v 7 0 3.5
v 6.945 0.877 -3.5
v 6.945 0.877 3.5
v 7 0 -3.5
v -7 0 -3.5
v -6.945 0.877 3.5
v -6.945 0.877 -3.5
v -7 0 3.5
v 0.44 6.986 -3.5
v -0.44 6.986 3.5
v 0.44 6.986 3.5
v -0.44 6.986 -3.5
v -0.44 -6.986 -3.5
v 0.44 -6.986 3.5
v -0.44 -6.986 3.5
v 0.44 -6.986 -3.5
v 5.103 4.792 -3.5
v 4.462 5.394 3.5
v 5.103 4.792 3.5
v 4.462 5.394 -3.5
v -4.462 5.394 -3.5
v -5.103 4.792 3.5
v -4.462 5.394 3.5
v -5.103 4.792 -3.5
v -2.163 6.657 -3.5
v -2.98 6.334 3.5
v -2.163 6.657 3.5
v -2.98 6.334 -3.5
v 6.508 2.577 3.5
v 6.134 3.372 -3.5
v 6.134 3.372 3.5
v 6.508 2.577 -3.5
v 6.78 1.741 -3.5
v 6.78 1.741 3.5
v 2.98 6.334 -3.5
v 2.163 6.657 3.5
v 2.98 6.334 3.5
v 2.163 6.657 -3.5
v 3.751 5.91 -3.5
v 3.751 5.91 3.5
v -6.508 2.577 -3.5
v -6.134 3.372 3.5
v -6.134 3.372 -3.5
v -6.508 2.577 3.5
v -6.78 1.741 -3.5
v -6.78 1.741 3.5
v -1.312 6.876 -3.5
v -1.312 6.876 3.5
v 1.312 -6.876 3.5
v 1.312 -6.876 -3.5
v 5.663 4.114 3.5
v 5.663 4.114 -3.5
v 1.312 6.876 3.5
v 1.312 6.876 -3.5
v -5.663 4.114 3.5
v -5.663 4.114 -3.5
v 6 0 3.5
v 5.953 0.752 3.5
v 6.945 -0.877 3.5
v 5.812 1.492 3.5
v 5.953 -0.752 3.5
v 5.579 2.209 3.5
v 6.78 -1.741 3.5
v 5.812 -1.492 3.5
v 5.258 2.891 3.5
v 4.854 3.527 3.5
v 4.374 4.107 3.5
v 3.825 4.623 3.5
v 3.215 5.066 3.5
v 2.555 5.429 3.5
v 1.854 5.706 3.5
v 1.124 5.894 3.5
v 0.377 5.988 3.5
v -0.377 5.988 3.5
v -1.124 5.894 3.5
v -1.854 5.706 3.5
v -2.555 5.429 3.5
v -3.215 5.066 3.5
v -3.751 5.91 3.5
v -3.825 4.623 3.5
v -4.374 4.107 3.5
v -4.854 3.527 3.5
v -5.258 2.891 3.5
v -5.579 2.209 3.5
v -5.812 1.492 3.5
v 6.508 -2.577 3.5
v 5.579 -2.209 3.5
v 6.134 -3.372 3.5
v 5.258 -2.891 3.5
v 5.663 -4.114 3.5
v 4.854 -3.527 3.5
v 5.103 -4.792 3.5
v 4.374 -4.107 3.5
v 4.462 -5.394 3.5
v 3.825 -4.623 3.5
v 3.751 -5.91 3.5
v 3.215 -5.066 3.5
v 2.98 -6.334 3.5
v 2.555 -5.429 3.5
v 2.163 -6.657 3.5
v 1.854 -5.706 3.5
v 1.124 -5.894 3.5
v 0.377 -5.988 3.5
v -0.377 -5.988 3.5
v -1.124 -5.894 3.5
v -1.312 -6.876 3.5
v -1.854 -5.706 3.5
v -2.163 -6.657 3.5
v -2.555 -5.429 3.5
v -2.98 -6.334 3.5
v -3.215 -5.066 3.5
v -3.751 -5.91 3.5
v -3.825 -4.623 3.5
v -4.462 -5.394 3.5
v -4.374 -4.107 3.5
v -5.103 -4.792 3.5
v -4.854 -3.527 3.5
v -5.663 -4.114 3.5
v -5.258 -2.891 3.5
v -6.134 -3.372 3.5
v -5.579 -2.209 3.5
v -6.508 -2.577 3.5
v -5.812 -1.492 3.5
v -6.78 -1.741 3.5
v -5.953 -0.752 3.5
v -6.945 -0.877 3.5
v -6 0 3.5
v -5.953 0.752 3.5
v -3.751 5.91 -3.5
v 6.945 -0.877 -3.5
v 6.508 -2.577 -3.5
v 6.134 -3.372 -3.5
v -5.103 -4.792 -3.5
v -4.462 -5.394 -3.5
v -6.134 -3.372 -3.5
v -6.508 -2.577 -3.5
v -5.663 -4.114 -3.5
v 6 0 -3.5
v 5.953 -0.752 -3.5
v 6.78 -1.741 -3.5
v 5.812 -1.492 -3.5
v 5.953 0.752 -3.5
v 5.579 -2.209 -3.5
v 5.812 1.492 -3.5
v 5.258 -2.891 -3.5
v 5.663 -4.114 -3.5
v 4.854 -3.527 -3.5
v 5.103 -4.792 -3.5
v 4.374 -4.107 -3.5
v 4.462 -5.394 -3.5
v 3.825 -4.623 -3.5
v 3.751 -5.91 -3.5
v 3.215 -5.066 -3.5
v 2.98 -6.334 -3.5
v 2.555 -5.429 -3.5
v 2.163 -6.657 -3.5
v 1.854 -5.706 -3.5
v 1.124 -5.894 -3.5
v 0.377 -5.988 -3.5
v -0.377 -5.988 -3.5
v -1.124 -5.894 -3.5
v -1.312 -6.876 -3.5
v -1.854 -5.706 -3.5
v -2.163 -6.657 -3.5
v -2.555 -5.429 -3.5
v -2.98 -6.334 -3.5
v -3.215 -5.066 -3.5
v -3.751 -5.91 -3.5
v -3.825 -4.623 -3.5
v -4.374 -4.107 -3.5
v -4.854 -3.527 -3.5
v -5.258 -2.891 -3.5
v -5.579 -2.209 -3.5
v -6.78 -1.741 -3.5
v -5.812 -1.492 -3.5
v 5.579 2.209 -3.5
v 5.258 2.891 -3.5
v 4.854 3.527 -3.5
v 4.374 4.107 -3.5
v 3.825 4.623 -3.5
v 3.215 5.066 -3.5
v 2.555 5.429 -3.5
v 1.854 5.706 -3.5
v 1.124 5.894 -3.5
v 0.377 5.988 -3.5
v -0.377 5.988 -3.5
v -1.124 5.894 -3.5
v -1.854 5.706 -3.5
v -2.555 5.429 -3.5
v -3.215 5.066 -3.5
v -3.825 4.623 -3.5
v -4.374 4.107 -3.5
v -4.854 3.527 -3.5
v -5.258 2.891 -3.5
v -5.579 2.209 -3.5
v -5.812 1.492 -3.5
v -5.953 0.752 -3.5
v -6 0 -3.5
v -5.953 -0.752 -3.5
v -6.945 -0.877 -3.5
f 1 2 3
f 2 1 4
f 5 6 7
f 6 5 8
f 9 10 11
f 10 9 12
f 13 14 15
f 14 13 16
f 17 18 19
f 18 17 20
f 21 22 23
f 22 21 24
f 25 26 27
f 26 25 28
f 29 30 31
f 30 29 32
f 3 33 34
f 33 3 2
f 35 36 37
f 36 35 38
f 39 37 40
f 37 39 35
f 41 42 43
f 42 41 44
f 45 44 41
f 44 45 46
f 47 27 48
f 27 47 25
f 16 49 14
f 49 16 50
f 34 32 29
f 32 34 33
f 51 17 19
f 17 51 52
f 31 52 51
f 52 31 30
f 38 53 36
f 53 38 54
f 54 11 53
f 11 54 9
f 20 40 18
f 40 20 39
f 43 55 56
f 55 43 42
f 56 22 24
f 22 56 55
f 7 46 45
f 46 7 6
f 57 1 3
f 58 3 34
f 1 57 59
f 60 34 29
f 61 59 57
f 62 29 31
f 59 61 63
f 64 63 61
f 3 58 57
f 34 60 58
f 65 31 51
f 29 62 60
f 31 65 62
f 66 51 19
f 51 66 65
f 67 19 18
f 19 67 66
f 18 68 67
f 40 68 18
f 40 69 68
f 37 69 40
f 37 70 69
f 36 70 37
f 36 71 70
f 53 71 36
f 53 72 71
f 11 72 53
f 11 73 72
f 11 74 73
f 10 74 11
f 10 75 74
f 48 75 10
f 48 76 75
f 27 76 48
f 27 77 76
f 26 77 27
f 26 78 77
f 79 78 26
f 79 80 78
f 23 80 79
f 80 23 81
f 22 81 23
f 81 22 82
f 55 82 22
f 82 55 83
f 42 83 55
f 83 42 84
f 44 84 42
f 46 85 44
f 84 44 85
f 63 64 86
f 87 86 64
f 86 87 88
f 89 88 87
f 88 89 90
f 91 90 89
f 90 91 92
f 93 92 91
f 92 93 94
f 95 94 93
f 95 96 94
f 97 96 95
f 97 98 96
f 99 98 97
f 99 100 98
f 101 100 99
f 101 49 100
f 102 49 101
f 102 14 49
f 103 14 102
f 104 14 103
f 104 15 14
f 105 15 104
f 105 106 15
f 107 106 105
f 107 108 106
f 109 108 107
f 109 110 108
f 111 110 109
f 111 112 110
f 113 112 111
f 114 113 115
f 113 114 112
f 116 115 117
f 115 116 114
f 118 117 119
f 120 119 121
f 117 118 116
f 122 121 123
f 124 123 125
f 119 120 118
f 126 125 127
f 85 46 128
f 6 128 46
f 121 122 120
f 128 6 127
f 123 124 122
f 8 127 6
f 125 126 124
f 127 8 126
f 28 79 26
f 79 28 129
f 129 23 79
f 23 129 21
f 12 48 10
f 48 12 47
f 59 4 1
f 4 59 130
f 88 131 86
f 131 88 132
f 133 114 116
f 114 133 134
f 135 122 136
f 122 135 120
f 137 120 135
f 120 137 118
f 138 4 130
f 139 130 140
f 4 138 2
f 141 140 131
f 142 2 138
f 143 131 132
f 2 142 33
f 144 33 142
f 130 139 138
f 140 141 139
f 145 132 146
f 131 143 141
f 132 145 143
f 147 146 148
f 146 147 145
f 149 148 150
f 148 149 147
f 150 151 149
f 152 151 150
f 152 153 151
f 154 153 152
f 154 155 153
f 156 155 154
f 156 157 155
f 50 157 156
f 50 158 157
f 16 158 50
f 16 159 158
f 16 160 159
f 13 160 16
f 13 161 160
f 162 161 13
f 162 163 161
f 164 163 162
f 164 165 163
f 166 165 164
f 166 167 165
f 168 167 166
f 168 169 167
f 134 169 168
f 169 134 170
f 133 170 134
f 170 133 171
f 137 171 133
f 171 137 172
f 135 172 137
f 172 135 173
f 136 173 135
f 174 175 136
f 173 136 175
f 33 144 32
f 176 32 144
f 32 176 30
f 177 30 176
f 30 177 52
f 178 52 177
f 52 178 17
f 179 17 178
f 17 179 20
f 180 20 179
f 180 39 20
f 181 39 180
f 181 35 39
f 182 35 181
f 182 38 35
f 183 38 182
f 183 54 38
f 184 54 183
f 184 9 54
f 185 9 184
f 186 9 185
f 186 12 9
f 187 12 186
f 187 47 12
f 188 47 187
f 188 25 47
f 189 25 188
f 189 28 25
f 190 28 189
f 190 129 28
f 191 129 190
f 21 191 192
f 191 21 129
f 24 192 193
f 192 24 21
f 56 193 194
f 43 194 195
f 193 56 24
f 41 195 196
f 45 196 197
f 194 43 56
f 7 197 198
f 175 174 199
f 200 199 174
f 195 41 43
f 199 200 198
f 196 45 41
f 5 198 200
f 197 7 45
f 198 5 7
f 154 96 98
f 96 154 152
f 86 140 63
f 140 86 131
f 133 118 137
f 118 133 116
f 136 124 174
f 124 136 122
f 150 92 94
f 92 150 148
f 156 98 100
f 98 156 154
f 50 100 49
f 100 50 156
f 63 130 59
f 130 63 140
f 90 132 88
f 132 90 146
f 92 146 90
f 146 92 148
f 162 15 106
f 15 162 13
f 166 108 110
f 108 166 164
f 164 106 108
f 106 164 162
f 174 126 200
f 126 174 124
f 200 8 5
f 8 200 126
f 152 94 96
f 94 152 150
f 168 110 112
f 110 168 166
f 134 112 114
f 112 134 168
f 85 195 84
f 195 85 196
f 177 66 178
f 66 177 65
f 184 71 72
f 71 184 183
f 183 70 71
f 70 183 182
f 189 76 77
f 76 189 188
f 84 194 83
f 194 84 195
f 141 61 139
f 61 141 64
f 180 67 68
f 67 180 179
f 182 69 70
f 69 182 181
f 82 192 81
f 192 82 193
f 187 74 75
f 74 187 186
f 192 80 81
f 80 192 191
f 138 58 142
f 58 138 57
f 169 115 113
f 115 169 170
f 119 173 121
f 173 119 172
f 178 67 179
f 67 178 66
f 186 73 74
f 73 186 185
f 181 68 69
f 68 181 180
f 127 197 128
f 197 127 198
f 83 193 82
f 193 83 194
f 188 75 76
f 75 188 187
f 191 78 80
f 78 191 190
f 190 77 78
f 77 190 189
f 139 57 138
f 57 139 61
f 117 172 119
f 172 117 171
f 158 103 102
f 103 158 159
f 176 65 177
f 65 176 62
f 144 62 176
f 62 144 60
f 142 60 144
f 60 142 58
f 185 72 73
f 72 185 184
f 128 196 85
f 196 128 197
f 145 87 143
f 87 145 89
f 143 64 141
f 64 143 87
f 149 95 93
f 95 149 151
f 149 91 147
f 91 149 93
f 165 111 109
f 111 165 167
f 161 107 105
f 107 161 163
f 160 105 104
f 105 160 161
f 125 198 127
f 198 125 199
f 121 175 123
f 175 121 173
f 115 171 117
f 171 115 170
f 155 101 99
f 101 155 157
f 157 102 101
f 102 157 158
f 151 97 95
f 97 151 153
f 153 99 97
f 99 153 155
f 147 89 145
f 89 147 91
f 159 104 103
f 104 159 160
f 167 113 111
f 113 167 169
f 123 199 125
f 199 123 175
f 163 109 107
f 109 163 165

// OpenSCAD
$fn = 50;


difference() {
	union() {
		translate(v = [0, 0, -3.5000000000]) {
			cylinder(h = 7, r = 7.0000000000);
		}
	}
	union() {
		translate(v = [0, 0, -100.0000000000]) {
			cylinder(h = 200, r = 6);
		}
	}
}
